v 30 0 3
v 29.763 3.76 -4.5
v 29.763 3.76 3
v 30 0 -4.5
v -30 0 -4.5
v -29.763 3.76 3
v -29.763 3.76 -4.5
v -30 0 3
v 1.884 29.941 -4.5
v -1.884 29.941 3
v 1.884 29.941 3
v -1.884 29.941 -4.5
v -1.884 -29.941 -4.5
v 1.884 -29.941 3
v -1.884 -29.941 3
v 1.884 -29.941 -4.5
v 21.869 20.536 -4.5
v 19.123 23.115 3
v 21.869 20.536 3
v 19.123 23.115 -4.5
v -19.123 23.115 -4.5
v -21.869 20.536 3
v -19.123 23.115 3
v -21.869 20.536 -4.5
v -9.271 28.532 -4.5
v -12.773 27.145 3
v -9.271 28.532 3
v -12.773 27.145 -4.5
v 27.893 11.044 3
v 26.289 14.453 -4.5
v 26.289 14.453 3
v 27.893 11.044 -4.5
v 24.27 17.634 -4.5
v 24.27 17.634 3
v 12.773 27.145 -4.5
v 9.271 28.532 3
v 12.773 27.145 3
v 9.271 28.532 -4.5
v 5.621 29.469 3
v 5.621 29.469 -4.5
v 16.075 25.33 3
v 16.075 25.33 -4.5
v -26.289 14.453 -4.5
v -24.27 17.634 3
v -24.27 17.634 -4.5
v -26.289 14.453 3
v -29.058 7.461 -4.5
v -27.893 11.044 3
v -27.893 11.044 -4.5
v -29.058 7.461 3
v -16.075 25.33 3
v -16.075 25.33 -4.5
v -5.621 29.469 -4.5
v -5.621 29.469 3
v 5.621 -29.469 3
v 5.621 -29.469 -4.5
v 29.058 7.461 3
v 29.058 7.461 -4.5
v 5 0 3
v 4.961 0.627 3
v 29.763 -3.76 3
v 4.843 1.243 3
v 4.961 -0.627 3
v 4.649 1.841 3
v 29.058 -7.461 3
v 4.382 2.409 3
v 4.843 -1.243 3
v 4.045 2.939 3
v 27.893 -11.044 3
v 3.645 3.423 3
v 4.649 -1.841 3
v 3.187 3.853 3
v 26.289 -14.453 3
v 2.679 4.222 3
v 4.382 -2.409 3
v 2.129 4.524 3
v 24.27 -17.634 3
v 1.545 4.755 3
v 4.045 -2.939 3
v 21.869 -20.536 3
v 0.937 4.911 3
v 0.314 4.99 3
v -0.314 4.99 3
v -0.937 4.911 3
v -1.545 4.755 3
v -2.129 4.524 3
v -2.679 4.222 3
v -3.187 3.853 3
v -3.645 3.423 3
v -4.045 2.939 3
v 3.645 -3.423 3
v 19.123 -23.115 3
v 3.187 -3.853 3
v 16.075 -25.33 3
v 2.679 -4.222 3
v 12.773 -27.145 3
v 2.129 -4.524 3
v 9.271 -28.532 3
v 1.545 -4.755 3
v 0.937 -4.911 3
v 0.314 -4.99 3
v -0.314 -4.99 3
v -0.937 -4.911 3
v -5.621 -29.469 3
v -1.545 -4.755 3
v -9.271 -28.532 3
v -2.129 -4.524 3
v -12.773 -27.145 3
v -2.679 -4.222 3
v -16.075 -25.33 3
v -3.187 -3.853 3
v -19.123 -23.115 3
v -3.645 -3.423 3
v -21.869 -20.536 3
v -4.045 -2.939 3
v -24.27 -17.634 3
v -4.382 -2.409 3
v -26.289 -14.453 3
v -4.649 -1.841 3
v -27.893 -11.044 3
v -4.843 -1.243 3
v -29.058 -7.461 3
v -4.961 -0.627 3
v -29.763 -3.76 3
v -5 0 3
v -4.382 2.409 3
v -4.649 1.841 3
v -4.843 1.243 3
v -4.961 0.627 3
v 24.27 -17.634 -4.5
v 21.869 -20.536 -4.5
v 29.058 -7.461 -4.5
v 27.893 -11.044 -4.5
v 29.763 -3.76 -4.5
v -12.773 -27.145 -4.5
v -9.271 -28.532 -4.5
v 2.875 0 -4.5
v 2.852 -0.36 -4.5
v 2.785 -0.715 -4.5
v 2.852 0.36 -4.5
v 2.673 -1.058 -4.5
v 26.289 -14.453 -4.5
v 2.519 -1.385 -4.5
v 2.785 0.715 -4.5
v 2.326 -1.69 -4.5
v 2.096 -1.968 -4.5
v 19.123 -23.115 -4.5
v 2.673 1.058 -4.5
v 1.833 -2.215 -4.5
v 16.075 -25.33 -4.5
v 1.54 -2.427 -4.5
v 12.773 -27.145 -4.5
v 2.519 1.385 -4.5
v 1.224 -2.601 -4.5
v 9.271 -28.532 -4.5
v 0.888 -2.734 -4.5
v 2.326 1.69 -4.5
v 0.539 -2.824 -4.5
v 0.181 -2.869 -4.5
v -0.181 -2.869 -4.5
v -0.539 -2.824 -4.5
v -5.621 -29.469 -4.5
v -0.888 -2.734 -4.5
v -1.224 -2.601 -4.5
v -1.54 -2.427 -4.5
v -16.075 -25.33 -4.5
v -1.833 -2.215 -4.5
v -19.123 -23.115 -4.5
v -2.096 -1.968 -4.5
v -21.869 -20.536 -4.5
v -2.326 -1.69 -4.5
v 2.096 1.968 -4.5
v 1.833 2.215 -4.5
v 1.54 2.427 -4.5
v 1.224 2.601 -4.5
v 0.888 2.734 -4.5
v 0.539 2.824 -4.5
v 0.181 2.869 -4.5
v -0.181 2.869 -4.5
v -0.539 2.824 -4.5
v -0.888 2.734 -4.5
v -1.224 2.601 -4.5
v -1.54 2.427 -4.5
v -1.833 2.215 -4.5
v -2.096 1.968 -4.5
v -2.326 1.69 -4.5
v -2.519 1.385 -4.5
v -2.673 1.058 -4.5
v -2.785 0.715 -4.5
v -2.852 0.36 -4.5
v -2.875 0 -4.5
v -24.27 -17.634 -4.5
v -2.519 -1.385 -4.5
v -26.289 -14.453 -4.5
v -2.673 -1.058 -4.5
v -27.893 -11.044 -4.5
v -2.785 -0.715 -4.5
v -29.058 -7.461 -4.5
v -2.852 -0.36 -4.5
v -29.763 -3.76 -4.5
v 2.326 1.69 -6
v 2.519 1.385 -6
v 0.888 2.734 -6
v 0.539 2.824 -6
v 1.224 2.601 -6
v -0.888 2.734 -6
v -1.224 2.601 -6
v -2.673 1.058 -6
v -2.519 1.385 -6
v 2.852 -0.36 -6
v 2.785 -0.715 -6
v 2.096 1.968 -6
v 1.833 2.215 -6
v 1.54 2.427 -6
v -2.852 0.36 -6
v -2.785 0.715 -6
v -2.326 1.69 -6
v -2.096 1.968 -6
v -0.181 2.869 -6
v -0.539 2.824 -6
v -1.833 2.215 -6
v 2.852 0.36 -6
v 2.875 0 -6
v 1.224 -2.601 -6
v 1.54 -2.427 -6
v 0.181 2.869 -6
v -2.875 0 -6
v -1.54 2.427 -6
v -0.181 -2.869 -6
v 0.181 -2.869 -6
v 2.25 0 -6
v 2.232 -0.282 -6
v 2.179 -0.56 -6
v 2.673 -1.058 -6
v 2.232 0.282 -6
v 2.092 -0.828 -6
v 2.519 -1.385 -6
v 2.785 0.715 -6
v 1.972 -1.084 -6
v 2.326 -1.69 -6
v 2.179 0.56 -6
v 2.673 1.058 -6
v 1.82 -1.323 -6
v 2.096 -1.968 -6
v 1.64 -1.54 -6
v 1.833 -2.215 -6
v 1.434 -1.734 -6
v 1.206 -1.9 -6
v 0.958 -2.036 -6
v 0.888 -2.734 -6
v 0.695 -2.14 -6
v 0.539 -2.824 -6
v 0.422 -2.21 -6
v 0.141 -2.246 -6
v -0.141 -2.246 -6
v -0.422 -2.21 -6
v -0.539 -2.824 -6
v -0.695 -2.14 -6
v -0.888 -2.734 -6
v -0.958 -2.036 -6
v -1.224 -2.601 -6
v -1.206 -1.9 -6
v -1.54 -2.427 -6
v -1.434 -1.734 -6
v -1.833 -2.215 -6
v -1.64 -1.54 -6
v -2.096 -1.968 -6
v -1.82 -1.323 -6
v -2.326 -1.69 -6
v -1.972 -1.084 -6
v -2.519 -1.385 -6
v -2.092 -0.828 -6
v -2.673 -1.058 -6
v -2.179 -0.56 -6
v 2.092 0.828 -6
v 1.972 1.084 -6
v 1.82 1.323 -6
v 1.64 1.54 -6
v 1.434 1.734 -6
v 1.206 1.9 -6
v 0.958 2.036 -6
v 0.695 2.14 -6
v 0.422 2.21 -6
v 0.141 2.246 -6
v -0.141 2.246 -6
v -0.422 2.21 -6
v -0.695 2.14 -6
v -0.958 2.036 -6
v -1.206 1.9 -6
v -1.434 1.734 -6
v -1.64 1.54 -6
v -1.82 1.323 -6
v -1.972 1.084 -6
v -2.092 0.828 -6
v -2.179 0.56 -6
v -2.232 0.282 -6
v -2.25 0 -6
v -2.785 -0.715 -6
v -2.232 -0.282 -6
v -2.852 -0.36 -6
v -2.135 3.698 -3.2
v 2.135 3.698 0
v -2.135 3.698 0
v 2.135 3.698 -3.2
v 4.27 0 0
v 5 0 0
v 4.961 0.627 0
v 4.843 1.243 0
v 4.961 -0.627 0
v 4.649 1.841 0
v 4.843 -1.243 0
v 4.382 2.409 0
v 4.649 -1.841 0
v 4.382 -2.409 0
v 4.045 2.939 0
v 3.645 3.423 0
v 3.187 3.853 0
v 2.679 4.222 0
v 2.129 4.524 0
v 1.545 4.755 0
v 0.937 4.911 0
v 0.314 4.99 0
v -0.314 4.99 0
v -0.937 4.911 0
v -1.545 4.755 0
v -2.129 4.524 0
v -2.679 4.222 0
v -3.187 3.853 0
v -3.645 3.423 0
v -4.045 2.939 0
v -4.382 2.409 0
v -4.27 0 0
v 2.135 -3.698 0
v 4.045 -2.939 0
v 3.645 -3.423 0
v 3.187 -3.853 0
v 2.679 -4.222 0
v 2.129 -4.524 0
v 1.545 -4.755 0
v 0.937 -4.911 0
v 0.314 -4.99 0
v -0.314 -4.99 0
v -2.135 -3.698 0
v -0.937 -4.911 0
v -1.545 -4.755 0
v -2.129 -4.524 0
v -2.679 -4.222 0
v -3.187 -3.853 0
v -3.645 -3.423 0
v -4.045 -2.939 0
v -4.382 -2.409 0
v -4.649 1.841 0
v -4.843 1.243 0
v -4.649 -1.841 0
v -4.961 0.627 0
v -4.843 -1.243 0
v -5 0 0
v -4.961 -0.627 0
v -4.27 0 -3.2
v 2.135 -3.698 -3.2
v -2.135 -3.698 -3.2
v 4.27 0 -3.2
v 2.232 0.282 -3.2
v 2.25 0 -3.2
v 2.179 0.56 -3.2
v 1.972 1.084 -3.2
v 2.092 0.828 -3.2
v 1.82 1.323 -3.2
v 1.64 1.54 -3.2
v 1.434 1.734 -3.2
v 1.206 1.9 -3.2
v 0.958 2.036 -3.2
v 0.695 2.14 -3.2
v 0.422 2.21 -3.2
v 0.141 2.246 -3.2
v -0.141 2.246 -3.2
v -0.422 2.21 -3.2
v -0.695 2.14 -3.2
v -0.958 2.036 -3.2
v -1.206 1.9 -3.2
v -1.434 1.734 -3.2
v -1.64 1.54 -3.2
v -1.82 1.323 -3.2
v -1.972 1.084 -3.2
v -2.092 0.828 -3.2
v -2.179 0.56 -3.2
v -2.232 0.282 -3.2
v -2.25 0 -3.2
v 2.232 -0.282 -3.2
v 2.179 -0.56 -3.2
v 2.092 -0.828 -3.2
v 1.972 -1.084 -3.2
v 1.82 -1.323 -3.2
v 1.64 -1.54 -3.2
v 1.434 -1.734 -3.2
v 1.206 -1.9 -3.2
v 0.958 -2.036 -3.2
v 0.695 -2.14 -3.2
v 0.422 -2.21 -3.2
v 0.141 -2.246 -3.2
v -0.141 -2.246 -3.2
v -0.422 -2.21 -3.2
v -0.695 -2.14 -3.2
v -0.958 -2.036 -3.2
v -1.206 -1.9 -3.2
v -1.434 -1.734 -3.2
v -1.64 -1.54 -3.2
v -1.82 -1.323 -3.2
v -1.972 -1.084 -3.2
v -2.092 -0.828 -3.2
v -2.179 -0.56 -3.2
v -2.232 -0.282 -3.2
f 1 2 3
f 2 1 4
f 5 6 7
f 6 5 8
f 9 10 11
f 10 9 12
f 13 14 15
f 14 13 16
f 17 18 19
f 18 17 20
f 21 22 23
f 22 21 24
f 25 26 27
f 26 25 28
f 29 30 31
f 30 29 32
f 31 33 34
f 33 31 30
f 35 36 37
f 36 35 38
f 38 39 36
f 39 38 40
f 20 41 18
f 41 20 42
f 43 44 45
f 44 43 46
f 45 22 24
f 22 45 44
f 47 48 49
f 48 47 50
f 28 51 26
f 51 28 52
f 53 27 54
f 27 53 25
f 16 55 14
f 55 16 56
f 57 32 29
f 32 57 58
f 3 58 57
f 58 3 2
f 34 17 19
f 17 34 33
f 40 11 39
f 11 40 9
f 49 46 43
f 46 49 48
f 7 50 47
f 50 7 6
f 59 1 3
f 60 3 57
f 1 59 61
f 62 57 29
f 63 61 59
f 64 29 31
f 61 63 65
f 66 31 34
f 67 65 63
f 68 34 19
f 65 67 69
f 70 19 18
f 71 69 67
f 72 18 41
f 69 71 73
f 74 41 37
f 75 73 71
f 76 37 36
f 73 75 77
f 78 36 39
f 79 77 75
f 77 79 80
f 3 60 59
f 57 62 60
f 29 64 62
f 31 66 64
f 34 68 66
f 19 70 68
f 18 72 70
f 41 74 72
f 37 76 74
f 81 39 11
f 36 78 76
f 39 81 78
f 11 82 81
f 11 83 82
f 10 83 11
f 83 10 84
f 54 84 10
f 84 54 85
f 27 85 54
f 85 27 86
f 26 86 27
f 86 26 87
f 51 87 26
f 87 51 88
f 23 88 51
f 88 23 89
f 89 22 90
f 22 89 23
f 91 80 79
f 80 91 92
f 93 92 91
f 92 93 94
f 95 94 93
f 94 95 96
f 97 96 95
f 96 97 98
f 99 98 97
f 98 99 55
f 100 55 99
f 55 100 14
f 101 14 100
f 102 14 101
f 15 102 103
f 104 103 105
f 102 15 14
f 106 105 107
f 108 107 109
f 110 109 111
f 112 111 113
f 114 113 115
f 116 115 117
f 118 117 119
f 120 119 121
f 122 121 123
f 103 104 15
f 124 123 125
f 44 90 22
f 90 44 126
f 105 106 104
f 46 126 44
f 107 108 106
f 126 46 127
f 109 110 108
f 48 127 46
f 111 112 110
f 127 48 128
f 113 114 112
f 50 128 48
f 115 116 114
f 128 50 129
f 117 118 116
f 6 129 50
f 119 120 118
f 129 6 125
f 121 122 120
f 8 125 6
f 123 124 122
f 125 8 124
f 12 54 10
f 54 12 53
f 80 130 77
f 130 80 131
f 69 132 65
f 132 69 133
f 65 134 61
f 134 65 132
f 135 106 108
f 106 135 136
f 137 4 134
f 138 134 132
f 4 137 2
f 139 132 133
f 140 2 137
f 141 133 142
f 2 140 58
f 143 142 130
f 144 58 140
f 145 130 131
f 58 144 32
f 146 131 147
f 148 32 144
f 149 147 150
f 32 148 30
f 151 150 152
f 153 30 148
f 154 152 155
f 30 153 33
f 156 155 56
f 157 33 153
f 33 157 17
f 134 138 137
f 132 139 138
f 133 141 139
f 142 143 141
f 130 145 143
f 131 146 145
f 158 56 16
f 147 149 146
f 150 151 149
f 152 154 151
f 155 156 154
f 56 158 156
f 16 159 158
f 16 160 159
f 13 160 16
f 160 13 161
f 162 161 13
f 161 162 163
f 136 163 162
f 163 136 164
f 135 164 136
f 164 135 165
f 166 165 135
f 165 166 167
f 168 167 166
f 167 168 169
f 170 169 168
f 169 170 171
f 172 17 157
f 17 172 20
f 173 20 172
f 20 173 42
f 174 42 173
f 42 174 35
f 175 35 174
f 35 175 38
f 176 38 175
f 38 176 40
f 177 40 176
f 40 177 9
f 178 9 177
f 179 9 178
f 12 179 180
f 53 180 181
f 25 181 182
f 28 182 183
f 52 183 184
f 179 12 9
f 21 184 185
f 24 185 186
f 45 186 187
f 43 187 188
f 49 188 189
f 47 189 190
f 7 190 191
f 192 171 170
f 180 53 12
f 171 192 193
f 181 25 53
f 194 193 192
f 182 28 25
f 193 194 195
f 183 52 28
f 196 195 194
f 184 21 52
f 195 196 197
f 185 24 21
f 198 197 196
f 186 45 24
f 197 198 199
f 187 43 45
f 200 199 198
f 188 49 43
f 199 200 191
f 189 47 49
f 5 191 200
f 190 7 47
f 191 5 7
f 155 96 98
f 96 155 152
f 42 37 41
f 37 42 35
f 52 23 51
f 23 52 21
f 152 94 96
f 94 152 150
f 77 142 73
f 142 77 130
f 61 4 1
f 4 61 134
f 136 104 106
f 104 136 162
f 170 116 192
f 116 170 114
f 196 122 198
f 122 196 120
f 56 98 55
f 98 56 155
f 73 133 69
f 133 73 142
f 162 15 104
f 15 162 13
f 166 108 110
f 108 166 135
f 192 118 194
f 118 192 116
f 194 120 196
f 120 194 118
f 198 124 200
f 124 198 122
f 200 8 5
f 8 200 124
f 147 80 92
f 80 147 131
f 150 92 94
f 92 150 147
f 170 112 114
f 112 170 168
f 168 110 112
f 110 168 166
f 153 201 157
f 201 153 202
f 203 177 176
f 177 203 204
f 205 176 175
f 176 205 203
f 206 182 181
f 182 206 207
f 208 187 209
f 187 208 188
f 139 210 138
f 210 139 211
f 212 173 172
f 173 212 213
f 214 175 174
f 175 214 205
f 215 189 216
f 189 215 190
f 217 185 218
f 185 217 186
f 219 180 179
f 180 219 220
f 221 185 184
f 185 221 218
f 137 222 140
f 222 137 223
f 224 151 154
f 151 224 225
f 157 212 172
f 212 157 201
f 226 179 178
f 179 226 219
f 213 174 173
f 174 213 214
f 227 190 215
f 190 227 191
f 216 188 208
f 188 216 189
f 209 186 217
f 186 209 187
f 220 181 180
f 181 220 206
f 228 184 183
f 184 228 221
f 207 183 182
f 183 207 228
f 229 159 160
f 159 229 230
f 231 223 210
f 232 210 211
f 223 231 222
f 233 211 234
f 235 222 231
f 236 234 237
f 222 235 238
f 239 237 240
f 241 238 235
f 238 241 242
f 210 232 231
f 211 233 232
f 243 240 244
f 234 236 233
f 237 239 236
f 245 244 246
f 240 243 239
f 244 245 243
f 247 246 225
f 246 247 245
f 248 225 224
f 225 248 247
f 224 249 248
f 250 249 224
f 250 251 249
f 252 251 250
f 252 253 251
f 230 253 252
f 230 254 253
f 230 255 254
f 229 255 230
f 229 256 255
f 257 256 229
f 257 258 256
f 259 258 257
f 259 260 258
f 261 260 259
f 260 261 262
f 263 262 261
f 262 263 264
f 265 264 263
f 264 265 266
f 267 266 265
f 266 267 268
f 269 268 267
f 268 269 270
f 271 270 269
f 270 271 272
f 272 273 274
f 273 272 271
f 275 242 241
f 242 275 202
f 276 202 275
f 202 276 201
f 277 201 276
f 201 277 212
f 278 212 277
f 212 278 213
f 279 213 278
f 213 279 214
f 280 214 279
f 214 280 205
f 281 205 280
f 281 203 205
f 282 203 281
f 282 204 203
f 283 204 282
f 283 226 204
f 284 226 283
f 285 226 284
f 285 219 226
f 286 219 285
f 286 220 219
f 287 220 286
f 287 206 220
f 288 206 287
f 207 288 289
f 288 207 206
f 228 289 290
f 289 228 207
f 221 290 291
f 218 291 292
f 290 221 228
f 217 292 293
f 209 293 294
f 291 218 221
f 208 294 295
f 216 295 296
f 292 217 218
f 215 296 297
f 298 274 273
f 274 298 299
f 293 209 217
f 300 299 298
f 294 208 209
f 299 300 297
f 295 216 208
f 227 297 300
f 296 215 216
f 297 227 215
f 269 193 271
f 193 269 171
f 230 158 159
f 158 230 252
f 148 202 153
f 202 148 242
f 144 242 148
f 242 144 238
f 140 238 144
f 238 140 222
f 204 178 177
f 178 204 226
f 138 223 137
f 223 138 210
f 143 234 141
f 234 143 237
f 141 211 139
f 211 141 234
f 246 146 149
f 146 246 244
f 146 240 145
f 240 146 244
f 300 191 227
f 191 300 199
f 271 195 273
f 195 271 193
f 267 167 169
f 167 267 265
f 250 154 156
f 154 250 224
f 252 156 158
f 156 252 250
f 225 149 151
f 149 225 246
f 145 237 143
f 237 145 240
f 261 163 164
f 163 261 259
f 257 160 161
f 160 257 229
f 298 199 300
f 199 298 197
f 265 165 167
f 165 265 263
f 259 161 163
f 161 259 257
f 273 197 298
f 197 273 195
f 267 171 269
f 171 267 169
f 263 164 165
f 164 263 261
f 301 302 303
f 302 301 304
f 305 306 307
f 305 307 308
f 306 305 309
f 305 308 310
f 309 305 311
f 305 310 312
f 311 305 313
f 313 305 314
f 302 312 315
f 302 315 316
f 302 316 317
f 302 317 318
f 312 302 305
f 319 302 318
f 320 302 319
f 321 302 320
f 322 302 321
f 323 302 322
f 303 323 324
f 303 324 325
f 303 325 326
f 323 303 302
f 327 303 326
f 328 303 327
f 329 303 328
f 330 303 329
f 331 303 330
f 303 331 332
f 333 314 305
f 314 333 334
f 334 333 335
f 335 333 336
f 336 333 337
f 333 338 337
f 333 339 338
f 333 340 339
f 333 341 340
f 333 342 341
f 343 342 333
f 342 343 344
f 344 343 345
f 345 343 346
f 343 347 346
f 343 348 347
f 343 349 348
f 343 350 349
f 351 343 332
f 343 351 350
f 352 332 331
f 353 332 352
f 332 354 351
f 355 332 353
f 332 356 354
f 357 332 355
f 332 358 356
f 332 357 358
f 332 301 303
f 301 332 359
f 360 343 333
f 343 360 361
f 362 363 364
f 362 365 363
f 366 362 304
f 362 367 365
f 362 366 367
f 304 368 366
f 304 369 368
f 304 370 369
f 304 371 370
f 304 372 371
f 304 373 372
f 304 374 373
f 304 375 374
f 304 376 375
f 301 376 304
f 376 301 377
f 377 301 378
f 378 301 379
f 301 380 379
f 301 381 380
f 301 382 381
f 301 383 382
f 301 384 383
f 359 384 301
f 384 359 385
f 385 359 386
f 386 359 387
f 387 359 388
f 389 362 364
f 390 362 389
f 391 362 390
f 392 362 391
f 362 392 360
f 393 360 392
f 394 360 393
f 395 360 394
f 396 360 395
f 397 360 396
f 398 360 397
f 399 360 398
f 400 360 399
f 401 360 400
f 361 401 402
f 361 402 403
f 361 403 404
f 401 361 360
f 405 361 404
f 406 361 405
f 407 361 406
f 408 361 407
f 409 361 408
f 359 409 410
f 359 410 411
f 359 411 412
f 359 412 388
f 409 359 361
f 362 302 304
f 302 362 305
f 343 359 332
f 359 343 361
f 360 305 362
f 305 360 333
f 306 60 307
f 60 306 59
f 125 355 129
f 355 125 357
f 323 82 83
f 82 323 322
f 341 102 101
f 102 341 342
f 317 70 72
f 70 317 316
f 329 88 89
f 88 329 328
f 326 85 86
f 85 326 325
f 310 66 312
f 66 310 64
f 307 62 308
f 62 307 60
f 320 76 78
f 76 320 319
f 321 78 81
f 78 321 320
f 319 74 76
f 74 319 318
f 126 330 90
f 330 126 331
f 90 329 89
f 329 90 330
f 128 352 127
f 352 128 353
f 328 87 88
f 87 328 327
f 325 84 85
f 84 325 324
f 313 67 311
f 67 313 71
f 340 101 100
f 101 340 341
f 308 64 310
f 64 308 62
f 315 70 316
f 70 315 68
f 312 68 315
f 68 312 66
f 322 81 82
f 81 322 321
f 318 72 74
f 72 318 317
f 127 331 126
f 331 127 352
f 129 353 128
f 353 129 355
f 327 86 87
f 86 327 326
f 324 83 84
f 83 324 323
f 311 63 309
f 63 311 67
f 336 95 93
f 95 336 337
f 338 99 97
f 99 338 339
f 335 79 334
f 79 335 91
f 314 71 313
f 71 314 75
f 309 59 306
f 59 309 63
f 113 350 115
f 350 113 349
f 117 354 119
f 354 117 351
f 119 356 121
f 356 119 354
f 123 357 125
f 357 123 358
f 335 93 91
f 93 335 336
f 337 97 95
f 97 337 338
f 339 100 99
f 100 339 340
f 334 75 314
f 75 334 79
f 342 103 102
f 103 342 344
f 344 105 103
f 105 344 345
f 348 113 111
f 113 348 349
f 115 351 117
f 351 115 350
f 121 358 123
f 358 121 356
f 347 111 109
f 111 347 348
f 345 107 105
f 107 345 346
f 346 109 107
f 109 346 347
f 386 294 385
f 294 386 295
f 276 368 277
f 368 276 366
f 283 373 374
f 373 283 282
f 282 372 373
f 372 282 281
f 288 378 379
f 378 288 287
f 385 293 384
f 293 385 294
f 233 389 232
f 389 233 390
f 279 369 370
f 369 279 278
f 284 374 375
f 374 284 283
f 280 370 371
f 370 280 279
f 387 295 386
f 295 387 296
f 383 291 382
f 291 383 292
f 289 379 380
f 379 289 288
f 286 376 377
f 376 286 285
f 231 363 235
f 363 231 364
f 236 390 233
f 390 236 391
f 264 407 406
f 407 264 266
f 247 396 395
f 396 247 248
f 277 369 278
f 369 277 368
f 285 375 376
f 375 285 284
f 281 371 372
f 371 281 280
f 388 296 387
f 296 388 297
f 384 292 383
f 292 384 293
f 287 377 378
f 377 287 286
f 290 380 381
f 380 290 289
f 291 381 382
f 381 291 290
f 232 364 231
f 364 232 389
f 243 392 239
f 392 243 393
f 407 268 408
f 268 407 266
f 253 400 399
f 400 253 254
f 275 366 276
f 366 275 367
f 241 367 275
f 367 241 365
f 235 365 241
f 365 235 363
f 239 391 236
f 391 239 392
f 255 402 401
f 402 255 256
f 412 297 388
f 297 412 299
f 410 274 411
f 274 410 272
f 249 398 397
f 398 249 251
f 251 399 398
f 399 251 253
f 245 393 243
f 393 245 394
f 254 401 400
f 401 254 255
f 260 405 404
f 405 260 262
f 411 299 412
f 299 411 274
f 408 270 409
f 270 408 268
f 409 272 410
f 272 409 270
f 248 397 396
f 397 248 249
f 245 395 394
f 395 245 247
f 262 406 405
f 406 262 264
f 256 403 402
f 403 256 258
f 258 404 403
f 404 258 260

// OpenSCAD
$fn = 50;

difference() {
	union() {
		translate(v = [0, 0, -4.5]) {
			cylinder(h = 7.5, r = 30.0);
		}
		#translate(v = [0, 0, -6.0]) {
			cylinder(h = 6, r = 2.875);
		}
	}
	union() {
		translate(v = [0, 0, 0]) {
			rotate(a = [0, 0, 0]) {
				difference() {
					union() {
						translate(v = [0, 0, -3.2]) {
							linear_extrude(height = 3.2) {
								polygon(points = [[4.2698, 0.0], [2.1349000000000005, 3.697755269078796], [-2.134899999999999, 3.6977552690787965], [-4.2698, 5.228996902999369e-16], [-2.134900000000002, -3.6977552690787956], [2.1348999999999974, -3.697755269078798]]);
							}
						}
					}
					union();
				}
			}
		}
		#cylinder(h = 3, r = 5.0);
		#translate(v = [0, 0, -100.0]) {
			cylinder(h = 200, r = 2.25);
		}
	}
}
